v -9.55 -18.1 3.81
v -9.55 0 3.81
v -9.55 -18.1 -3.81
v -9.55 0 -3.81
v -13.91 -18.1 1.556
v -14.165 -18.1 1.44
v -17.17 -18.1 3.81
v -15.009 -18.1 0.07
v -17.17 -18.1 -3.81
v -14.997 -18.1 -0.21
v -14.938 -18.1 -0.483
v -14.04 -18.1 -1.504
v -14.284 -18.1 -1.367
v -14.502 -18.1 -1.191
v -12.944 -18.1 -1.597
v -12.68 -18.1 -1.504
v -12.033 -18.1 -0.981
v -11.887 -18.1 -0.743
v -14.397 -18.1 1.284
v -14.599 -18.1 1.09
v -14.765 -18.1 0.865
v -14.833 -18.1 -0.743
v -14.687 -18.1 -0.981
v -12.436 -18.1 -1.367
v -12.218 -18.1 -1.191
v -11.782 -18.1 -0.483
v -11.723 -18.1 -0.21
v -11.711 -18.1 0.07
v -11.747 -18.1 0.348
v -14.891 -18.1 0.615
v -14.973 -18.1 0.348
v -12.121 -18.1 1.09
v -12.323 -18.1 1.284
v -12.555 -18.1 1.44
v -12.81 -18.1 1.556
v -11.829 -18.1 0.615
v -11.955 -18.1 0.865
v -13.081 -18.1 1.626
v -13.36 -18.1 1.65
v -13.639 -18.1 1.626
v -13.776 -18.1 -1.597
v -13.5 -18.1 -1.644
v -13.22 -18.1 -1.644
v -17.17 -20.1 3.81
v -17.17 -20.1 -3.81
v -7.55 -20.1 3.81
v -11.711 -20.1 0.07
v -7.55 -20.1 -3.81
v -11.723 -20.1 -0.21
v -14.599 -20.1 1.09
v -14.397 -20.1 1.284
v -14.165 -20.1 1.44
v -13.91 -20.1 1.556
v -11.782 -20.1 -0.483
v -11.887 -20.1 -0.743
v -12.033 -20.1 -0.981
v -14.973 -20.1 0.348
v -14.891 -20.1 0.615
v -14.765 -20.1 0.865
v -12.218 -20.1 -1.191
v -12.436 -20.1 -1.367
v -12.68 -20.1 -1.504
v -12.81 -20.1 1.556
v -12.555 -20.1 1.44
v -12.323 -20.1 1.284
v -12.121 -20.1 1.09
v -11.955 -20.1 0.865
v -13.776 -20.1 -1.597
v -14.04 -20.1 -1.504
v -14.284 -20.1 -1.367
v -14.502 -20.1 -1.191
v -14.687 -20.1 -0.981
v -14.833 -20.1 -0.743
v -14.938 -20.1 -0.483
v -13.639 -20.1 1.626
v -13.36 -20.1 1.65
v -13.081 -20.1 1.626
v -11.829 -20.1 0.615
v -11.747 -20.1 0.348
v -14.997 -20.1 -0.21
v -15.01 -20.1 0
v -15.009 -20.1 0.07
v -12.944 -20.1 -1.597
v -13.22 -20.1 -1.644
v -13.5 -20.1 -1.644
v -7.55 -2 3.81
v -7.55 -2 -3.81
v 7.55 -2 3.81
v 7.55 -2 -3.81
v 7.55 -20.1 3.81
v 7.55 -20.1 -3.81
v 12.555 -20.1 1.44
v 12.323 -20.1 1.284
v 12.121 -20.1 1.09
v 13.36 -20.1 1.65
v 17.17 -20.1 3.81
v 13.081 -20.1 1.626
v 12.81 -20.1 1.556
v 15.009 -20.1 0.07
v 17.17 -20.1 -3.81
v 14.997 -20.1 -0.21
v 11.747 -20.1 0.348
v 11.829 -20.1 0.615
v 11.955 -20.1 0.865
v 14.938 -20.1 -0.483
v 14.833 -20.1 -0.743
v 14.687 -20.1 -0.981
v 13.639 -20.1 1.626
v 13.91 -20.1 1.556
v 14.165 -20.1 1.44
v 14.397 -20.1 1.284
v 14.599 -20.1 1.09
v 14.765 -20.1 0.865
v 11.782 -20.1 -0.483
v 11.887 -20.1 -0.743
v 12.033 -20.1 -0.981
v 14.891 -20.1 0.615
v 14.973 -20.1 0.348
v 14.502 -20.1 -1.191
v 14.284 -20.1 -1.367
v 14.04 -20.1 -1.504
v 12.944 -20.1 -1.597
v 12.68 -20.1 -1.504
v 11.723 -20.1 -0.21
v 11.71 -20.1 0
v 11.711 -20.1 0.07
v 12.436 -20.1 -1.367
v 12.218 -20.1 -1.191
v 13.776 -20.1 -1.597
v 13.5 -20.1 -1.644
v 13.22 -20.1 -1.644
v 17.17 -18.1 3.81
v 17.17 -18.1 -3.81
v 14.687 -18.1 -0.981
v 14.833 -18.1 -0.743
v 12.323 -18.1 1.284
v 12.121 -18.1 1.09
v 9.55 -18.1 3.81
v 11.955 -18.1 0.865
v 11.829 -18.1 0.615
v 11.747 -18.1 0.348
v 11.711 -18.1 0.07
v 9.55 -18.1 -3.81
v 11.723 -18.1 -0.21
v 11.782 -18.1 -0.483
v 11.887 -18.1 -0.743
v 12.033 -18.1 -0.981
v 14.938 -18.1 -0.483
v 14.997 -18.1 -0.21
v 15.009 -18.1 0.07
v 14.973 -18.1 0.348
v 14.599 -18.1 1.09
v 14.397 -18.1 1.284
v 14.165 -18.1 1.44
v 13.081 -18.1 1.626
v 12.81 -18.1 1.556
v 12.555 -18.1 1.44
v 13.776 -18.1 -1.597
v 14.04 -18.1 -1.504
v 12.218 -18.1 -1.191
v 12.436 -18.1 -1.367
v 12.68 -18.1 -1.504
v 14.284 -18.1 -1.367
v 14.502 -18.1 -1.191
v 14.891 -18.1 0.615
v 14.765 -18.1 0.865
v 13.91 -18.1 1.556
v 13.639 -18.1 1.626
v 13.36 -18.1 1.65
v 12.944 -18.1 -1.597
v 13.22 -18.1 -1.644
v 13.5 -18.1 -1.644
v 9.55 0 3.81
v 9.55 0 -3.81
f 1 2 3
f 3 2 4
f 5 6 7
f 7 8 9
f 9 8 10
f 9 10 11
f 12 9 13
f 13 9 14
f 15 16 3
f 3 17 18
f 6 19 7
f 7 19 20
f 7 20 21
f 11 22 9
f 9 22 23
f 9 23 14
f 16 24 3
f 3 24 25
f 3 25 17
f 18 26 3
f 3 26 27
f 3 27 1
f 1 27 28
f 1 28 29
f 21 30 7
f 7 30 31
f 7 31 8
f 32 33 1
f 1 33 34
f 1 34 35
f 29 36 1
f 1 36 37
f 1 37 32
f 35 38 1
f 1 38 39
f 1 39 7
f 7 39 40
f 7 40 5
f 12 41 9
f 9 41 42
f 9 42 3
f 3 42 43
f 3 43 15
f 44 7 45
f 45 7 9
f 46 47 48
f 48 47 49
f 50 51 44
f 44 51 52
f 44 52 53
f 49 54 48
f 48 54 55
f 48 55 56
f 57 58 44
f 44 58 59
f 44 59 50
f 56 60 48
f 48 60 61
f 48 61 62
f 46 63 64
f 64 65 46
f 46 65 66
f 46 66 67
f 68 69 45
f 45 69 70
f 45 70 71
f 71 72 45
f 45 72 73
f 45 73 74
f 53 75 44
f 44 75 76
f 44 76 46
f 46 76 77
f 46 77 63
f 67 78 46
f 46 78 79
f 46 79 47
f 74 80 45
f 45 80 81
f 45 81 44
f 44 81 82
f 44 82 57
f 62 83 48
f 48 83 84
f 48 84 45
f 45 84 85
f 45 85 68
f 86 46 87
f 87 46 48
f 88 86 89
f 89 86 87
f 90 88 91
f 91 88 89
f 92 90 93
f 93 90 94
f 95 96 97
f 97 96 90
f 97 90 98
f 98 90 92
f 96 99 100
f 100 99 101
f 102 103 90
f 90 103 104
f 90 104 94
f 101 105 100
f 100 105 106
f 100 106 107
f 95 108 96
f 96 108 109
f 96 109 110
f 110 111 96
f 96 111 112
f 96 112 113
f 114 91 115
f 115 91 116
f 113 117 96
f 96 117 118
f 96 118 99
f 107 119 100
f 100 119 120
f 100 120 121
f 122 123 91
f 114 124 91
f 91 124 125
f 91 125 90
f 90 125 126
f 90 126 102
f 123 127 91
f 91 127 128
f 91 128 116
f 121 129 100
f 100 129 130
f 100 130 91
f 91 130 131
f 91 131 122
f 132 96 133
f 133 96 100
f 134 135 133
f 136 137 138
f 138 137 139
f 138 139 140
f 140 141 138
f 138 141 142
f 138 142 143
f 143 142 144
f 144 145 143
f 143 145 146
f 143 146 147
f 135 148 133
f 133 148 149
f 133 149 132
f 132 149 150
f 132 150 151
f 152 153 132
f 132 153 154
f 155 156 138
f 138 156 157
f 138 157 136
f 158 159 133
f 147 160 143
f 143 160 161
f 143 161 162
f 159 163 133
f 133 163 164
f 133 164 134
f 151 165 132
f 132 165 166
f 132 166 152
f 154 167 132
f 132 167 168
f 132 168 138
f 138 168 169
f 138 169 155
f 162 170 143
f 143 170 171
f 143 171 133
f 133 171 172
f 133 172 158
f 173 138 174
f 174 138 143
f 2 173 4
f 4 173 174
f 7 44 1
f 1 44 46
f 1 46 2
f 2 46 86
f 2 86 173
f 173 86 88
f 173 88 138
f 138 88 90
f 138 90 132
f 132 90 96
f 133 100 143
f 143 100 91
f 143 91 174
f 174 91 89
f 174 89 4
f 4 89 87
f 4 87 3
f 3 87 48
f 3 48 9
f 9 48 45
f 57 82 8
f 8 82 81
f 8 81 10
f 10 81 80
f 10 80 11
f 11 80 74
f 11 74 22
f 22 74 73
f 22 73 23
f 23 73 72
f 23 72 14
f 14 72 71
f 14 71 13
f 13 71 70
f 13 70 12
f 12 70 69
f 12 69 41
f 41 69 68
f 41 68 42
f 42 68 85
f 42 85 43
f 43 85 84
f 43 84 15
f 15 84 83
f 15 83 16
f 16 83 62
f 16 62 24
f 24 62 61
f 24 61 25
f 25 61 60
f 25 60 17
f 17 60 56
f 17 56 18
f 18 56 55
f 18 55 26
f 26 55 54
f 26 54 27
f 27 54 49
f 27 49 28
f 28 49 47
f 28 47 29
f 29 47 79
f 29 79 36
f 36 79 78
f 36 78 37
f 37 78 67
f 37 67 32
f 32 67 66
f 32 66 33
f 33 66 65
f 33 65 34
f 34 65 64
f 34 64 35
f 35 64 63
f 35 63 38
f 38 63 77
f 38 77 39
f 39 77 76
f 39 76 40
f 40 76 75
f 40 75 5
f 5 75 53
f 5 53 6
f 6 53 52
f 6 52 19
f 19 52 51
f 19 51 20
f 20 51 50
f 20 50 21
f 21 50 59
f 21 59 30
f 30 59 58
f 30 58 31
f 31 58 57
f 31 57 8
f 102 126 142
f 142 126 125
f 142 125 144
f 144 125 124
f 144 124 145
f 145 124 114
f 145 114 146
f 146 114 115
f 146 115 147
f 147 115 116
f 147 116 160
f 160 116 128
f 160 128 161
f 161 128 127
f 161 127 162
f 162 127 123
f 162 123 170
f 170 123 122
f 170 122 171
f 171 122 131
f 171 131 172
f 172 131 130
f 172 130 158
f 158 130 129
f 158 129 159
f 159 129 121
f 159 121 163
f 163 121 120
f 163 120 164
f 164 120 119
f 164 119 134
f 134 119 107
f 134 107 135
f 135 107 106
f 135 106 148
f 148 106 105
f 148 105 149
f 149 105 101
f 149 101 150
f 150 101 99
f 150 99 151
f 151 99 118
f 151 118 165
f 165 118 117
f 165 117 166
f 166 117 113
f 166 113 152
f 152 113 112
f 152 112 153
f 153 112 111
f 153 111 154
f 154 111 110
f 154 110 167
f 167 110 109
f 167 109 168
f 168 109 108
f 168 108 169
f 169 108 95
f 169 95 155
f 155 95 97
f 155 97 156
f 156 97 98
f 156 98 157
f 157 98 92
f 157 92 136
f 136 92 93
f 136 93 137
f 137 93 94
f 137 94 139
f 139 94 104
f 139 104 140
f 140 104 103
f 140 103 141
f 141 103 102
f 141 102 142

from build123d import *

# Parameters (mm, degrees)
BOSS_EXTRUDE1_DEPTH = 3.81
SKETCH2_R           = 1.65
CUT_EXTRUDE1_DEPTH  = 2


with BuildPart() as part:
    # Sketch1 → Boss-Extrude1 (new body, symmetric)
    with BuildSketch(Plane.XY):
        Polygon((9.55, 0), (-9.55, 0), (-9.55, -18.1), (-17.17, -18.1), (-17.17, -20.1), (-7.55, -20.1), (-7.55, -2), (7.55, -2), (7.55, -20.1), (17.17, -20.1), (17.17, -18.1), (9.55, -18.1), align=None)
    extrude(amount=BOSS_EXTRUDE1_DEPTH, both=True)

    # Sketch2 → Cut-Extrude1 (cut)
    with BuildSketch(Plane(origin=(0, -18.1, 0), x_dir=(1, 0, 0), z_dir=(0, 1, 0))):
        with Locations((-13.36, 0)):
            Circle(SKETCH2_R)
    cut_extrude1 = extrude(amount=-CUT_EXTRUDE1_DEPTH, mode=Mode.SUBTRACT)

    # Mirror1: Cut-Extrude1 across plane
    add(cut_extrude1.mirror(Plane(origin=(0, 0, 0), x_dir=(0, 0, 1), z_dir=(1, 0, 0))), mode=Mode.SUBTRACT)


solid = part.part
